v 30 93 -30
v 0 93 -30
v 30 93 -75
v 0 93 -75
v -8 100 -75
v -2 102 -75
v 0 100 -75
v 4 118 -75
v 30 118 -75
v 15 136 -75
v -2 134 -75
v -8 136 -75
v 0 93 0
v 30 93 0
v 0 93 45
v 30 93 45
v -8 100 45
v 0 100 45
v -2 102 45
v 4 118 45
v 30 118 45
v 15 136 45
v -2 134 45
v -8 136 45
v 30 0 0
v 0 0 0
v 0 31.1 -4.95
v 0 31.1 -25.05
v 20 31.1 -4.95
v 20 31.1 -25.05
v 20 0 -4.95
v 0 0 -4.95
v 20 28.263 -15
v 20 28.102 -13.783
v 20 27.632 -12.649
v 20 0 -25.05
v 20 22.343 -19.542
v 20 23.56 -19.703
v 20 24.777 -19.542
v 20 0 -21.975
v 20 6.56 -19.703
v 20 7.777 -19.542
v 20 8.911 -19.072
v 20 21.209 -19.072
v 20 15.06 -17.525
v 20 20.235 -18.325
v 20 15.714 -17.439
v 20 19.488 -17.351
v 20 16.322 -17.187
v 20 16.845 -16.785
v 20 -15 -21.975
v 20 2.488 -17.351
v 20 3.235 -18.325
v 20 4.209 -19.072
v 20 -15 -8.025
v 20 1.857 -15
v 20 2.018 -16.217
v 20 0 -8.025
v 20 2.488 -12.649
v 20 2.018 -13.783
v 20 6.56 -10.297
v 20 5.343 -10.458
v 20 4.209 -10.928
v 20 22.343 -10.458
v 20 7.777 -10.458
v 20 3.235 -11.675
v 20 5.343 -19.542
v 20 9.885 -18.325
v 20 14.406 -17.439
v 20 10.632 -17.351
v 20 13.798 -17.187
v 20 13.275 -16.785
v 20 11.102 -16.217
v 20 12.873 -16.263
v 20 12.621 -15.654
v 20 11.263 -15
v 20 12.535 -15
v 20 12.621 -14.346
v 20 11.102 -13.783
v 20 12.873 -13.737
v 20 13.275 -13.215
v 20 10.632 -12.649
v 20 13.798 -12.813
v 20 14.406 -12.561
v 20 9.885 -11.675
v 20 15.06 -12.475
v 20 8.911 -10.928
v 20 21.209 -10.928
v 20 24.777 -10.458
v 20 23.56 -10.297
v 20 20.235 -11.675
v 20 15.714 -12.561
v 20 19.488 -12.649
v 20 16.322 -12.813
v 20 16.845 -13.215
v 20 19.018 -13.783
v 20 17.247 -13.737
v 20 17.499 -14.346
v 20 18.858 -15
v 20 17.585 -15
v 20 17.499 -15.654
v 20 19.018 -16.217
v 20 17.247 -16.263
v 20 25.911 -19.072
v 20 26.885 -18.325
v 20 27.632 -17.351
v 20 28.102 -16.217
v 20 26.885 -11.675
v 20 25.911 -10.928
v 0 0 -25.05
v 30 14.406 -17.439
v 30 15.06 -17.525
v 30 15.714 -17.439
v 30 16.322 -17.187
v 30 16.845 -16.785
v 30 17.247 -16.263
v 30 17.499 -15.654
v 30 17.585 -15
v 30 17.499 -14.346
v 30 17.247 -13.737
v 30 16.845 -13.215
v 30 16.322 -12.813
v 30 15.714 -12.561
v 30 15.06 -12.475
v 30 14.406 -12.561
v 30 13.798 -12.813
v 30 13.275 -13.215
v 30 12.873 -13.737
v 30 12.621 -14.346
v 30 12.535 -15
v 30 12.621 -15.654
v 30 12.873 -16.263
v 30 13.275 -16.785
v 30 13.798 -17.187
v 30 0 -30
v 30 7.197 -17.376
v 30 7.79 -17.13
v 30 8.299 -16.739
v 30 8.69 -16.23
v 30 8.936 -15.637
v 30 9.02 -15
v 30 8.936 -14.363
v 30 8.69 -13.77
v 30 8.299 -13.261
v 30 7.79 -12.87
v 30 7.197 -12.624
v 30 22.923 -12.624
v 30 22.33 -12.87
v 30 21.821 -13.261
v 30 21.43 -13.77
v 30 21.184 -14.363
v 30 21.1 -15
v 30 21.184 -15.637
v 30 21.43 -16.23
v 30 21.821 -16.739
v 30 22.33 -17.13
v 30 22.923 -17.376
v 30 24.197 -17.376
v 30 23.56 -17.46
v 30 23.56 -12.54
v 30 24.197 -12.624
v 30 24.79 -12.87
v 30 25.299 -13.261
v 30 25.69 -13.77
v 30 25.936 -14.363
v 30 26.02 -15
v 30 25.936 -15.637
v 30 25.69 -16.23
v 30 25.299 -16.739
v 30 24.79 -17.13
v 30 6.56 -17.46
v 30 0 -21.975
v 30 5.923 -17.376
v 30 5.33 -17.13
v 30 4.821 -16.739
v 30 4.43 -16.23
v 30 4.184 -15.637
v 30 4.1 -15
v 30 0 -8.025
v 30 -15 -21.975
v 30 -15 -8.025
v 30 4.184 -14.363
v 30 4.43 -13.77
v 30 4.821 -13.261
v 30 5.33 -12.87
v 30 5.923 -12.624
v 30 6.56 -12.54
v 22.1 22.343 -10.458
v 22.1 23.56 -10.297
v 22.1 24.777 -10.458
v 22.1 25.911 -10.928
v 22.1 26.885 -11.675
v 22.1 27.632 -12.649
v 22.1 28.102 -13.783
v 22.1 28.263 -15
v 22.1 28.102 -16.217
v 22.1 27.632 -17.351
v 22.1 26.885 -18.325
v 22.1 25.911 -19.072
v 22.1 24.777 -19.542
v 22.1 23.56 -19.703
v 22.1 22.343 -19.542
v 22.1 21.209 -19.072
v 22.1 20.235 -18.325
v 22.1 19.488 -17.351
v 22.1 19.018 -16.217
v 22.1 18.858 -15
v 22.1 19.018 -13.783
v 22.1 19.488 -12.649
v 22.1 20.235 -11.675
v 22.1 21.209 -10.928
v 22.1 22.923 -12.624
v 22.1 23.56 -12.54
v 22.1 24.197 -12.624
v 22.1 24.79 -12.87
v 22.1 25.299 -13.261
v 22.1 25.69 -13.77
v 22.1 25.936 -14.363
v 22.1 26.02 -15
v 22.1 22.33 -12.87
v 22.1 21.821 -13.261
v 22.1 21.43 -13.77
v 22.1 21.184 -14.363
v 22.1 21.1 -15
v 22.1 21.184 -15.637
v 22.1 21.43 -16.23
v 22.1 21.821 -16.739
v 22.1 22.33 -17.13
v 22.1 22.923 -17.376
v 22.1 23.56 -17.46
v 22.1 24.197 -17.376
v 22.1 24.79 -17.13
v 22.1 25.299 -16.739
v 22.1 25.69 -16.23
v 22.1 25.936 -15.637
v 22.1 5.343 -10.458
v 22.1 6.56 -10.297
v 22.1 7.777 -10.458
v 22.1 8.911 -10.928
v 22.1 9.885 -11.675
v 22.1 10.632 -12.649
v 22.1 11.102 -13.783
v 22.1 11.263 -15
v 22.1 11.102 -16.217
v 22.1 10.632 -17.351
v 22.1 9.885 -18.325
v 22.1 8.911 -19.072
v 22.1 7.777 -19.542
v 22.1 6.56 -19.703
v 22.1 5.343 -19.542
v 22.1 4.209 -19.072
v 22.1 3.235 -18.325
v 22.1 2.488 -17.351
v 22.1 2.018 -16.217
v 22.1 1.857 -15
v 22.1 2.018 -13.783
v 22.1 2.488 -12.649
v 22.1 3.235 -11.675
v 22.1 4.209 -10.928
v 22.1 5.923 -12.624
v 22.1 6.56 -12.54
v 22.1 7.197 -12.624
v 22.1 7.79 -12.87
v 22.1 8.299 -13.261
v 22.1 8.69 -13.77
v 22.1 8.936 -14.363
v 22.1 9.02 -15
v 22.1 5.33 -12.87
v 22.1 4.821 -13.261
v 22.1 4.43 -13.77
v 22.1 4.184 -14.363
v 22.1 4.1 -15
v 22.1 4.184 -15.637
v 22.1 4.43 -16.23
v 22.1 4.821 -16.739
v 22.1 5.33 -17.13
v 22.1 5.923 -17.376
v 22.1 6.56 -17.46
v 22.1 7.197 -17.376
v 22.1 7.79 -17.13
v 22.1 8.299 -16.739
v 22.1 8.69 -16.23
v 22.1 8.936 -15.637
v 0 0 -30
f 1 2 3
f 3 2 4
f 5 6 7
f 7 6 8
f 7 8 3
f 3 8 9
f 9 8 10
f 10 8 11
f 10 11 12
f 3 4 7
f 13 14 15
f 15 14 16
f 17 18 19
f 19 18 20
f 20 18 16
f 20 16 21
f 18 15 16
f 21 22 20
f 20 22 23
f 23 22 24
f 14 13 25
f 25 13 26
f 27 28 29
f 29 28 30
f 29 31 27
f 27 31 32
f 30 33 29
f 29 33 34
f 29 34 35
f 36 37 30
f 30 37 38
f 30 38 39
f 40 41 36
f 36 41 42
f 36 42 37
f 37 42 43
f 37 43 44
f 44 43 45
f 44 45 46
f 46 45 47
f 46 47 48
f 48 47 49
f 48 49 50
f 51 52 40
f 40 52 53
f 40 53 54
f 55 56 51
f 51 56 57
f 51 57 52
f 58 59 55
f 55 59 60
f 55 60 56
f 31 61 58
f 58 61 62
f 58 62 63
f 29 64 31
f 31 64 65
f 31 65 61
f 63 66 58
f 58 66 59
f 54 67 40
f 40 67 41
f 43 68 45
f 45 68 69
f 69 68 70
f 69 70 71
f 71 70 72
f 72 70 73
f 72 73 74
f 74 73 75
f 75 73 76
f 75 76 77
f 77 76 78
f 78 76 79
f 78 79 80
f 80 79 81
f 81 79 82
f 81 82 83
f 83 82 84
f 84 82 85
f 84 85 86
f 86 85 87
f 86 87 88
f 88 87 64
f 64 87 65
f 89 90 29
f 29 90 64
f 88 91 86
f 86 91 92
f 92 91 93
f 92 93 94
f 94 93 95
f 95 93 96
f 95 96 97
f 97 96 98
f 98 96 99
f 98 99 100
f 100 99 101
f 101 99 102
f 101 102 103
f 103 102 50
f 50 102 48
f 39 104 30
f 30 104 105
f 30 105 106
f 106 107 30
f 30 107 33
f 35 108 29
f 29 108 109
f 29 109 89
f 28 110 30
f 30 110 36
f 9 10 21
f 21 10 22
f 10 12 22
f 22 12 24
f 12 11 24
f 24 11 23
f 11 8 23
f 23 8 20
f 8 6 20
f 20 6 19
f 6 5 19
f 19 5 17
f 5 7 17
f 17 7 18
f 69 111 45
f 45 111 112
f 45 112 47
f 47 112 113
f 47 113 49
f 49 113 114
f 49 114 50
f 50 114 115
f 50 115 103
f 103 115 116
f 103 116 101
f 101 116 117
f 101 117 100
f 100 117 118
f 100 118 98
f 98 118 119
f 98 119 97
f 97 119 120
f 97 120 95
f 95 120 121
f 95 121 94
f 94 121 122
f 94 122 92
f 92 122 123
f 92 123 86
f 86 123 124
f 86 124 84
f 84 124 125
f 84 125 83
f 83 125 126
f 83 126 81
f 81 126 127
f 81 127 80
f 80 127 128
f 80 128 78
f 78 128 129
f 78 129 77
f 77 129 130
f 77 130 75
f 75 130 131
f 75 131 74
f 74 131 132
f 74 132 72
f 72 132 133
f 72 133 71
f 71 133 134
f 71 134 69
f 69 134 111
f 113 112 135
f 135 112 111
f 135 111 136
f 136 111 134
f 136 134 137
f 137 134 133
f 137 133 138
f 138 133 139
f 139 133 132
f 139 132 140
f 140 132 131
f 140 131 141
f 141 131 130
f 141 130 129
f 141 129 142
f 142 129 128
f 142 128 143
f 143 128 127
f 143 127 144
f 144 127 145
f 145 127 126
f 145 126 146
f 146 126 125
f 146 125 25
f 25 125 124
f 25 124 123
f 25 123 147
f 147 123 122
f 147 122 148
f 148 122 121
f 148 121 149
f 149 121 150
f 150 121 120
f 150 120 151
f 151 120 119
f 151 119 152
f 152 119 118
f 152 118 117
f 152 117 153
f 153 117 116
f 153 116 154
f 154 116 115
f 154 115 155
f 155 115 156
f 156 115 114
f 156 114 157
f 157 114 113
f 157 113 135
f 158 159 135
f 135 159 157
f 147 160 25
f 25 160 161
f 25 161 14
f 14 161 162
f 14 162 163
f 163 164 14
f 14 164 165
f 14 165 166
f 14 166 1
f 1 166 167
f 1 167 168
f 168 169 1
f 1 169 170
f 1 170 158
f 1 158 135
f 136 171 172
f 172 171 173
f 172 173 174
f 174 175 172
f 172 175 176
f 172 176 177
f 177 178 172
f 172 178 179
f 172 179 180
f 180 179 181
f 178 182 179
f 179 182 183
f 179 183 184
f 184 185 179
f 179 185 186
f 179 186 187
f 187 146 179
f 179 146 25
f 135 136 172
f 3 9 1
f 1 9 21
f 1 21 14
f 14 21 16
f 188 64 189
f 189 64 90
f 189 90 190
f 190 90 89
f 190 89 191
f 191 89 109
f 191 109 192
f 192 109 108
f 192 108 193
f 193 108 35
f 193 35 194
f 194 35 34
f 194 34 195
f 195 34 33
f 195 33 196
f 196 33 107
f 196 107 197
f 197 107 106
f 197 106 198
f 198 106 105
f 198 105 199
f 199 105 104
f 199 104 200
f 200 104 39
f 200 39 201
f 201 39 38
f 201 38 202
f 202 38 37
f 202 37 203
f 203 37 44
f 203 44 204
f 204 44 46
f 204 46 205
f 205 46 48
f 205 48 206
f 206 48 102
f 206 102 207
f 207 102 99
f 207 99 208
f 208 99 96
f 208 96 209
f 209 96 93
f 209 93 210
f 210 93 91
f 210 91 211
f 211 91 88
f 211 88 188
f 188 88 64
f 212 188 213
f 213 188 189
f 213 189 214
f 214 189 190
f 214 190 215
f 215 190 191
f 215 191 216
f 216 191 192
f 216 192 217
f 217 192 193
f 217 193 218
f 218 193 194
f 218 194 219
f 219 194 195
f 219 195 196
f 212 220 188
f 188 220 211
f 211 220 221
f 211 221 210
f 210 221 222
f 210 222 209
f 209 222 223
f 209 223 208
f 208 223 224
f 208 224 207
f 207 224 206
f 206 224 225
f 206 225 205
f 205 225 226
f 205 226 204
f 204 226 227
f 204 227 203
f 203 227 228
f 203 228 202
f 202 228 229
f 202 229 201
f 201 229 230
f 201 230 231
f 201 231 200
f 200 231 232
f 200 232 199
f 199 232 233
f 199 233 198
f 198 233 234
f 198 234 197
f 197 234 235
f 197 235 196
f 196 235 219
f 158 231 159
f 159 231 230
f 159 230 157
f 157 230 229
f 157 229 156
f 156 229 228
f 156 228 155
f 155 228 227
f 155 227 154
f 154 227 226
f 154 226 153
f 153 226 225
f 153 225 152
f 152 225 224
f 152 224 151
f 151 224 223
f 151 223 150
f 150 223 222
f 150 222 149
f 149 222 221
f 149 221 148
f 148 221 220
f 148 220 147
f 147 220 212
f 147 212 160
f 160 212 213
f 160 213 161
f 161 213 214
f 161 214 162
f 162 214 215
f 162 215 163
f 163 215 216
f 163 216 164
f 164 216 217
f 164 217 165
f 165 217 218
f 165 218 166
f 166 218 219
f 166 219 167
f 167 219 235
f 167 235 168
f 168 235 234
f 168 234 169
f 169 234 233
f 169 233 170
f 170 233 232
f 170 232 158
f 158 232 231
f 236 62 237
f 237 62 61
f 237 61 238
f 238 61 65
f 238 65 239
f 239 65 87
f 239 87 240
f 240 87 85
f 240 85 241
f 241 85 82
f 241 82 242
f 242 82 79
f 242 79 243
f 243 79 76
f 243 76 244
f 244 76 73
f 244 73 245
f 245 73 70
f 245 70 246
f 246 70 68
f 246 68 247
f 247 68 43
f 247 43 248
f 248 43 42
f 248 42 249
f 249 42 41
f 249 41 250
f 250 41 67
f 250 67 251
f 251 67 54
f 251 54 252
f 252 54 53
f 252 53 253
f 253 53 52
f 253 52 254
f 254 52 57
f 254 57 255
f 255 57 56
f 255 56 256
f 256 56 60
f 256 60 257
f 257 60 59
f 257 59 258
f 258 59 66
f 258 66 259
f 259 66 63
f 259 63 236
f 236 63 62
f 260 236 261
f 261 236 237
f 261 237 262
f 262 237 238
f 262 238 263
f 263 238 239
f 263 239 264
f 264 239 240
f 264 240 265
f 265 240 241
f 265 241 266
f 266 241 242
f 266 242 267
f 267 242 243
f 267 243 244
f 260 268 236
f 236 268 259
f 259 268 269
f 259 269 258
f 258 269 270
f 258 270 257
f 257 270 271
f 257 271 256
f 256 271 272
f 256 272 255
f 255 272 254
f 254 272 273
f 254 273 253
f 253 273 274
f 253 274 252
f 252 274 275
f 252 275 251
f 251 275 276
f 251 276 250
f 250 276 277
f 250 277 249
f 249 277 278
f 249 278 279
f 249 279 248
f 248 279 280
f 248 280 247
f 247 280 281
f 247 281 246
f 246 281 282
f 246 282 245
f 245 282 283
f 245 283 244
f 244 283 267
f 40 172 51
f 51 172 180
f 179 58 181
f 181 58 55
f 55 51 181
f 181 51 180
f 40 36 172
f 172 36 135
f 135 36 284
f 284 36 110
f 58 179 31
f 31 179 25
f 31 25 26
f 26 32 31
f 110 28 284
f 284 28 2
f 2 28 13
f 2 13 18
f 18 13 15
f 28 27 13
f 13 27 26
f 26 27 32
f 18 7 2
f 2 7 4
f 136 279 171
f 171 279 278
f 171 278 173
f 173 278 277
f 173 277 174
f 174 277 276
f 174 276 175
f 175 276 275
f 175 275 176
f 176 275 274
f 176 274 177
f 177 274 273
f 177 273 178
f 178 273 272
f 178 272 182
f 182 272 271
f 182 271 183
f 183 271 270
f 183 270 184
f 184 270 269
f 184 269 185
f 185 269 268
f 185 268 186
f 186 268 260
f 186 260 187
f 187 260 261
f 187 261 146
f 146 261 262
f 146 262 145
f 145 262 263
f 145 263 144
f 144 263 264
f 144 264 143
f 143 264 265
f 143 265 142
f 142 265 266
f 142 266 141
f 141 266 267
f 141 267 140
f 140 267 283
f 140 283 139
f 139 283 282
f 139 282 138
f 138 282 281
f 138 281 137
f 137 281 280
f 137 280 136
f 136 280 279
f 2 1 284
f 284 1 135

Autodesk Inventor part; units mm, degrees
ref_plane "YZ Plane" through (0, 0, 0) normal (1, 0, 0) x (0, 1, 0)
ref_plane "XZ Plane" through (0, 0, 0) normal (0, 1, 0) x (-1, 0, 0)
sketch "Sketch1" plane through (0, 0, 0) normal (0, 0, 1) x (1, 0, 0)
  line L0 (0, 0) -> (25, 0)
  line L1 (25, 0) -> (25, 40)
  line L2 (25, 40) -> (0, 40)
  line L3 (0, 40) -> (0, 0)
  dimension "d1" = 25
  dimension "d2" = 40
  dimension "d3" = 25
extrude "Extrusion1" add sketch "Sketch1" against normal blind 30
sketch "Sketch2" plane through (25, 0, 0) normal (1, 0, 0) x (0, 0, -1)
  line L0 (0, 0) -> (30, 0) projected
  circle A0 centre (15, 6.56) radius 2.46
extrude "Extrusion2" cut sketch "Sketch2" against normal blind 30
sketch "Sketch3" plane through (0, 0, 0) normal (-1, 0, 0) x (0, 0, 1)
  line L0 (0, 0) -> (-30, 0) projected
  line L1 (-25.05, 0) -> (-4.95, 0)
  line L2 (-4.95, 0) -> (-4.95, 33.12)
  line L3 (-4.95, 33.12) -> (-25.05, 33.12)
  line L4 (-25.05, 33.12) -> (-25.05, 0)
  dimension "d11" = 20.1
extrude "Extrusion3" cut sketch "Sketch3" against normal blind 20
sketch "Sketch4" plane through (0, 0, 0) normal (0, -1, 0) x (1, 0, 0)
  line L0 (20, -4.95) -> (20, -25.05) projected
  line L1 (20, -15) -> (25, -15)
  line L2 (25, 0) -> (25, -30) projected
  line L3 (20, -8.025) -> (25, -8.025)
  line L4 (25, -8.025) -> (25, -21.975)
  line L5 (25, -21.975) -> (20, -21.975)
  line L6 (20, -21.975) -> (20, -8.025)
  line L7 (20, -8.025) -> (25, -21.975) construction
  line L8 (25, -8.025) -> (20, -21.975) construction
  line L9 (25, -12.54) -> (25, -17.46) projected
  point P0 (0, 0)
  point P1 (22.5, -15)
  dimension "d14" = 13.95
extrude "Extrusion4" add sketch "Sketch4" along normal blind 15
sketch "Sketch5" plane through (20, 0, 0) normal (-1, 0, 0) x (0, 0, 1)
  circle A0 centre (-15, 6.56) radius 2.46 projected
  circle A1 centre (-15, 6.56) radius 4.7025
  circle A2 centre (-15, 6.56) radius 2.46 projected
  circle A3 centre (-15, 6.56) radius 2.46
  point P0 (0, 0)
  dimension "d17" = 9.405
extrude "Extrusion5" cut sketch "Sketch5" against normal blind 2.1
sketch "Sketch6" plane through (25, 0, 0) normal (1, 0, 0) x (0, 0, -1)
  circle A0 centre (15, 6.56) radius 4.7025 projected
  line L0 (15, 6.56) -> (15, 23.56)
  circle A1 centre (15, 23.56) radius 2.46
  point P0 (0, 0)
  dimension "d20" = 17
  dimension "d21" = 4.92
extrude "Extrusion6" cut sketch "Sketch6" against normal blind 10 contours A1
sketch "Sketch7" plane through (20, 0, 0) normal (-1, 0, 0) x (0, 0, 1)
  circle A0 centre (-15, 23.56) radius 2.46 projected
  circle A1 centre (-15, 23.56) radius 4.7025
  point P0 (0, 0)
  dimension "d24" = 9.405
extrude "Extrusion7" cut sketch "Sketch7" against normal blind 2.1
sketch "Sketch9" plane through (25, 0, 0) normal (1, 0, 0) x (0, 0, -1)
  circle A0 centre (15, 6.56) radius 2.46 projected
  circle A1 centre (15, 6.56) radius 2.46
  circle A2 centre (15, 23.56) radius 2.46 projected
  circle A3 centre (15, 23.56) radius 2.46
  line L0 (30, 40) -> (30, 0) projected
  line L1 (30, 0) -> (30, 40)
  line L2 (30, 40) -> (0, 40)
  line L3 (0, 40) -> (0, 0)
  line L4 (0, 0) -> (8.025, 0) projected
  line L5 (21.975, 0) -> (21.975, -15)
  line L6 (21.975, -15) -> (8.025, -15)
  line L7 (8.025, -15) -> (8.025, 0)
  line L8 (0, 0) -> (8.025, 0)
  line L9 (21.975, 0) -> (30, 0)
extrude "Extrusion8" add sketch "Sketch9" along normal blind 5
sketch "Sketch10" plane through (0, 40, 0) normal (0, 1, 0) x (1, 0, 0)
  line L0 (0, 30) -> (30, 30) projected
  line L1 (30, 0) -> (0, 0) projected
  line L2 (0, 30) -> (30, 30)
  line L3 (30, 30) -> (30, 0)
  line L4 (30, 0) -> (0, 0)
  line L5 (0, 0) -> (0, 30)
extrude "Extrusion9" add sketch "Sketch10" along normal blind 30
sketch "Sketch12" plane through (30, 0, 0) normal (1, 0, 0) x (0, 0, -1)
  circle A0 centre (15, 6.56) radius 2.46 projected
  line L0 (15, 6.56) -> (15, 15.06)
  circle A1 centre (15, 15.06) radius 2.525
  point P0 (0, 0)
  dimension "d31" = 8.5
  dimension "d33" = 5.05
extrude "Extrusion10" cut sketch "Sketch12" against normal blind 30 contours A1
sketch "Sketch14" plane through (0, 0, 0) normal (0, 0, 1) x (1, 0, 0)
  line L0 (30, 70) -> (0, 70) projected
  line L1 (0, 100) -> (-8, 100)
  line L2 (30, 0) -> (30, 70) projected
  line L3 (30, 118) -> (30, 70)
  line L4 (30, 105) -> (30, 100)
  line L5 (-2, 134) -> (-8, 136)
  line L6 (-2, 134) -> (4, 118)
  line L7 (-2, 102) -> (-8, 100)
  line L8 (-2, 102) -> (4, 118)
  line L9 (0, 70) -> (30, 70) projected
  line L10 (0, 70) -> (0, 100)
  line L11 (15, 136) -> (30, 118)
  line L12 (-8, 136) -> (15, 136)
  point P0 (0, 0)
  dimension "d47" = 30
extrude "Extrusion12" add sketch "Sketch14" against normal blind 30
sketch "Sketch15" plane through (0, 0, -25.05) normal (-1, 0, 0) x (0, 0, 1)
  line L0 (0, 33.12) -> (20.1, 33.12) projected
  line L1 (20.1, 33.12) -> (20.1, 0) projected
  line L2 (0, 33.12) -> (20.1, 33.12)
  line L3 (20.1, 33.12) -> (20.1, 31.1)
  line L4 (20.1, 31.1) -> (0, 31.1)
  line L5 (0, 31.1) -> (0, 33.12)
  point P0 (25.05, 0)
  dimension "d57" = 2.02
extrude "Extrusion13" add sketch "Sketch15" against normal blind 20
sketch "Sketch23" plane through (0, 0, 0) normal (0, 0, 1) x (1, 0, 0)
  line L0 (0, 100) -> (-8, 100) projected
  line L1 (-8, 100) -> (-2, 102) projected
  line L2 (-8, 100) -> (-2, 102)
  line L3 (-2, 102) -> (4, 118) projected
  line L4 (-2, 102) -> (4, 118)
  line L5 (-2, 134) -> (4, 118) projected
  line L6 (4, 118) -> (-2, 134)
  line L7 (-2, 134) -> (-8, 136) projected
  line L8 (-2, 134) -> (-8, 136)
  line L9 (-8, 136) -> (15, 136) projected
  line L10 (-8, 136) -> (15, 136)
  line L11 (30, 118) -> (15, 136) projected
  line L12 (15, 136) -> (30, 118)
  line L13 (30, 118) -> (30, 93)
  line L14 (30, 0) -> (30, 118) projected
  line L15 (30, 93) -> (0, 93)
  line L16 (0, 93) -> (0, 100)
  line L17 (-8, 100) -> (0, 100)
  point P0 (0, 0)
  dimension "d85" = 25
extrude "Extrusion14" add sketch "Sketch23" along normal blind 45
ref_plane "Work Plane1" through (0, 0, -15) normal (0, 0, 1) x (1, 0, 0)
mirror "Mirror1" about plane through (0, 0, -15) normal (0, 0, 1) of "Extrusion14"
properties part number "32mm_x_120mm"
